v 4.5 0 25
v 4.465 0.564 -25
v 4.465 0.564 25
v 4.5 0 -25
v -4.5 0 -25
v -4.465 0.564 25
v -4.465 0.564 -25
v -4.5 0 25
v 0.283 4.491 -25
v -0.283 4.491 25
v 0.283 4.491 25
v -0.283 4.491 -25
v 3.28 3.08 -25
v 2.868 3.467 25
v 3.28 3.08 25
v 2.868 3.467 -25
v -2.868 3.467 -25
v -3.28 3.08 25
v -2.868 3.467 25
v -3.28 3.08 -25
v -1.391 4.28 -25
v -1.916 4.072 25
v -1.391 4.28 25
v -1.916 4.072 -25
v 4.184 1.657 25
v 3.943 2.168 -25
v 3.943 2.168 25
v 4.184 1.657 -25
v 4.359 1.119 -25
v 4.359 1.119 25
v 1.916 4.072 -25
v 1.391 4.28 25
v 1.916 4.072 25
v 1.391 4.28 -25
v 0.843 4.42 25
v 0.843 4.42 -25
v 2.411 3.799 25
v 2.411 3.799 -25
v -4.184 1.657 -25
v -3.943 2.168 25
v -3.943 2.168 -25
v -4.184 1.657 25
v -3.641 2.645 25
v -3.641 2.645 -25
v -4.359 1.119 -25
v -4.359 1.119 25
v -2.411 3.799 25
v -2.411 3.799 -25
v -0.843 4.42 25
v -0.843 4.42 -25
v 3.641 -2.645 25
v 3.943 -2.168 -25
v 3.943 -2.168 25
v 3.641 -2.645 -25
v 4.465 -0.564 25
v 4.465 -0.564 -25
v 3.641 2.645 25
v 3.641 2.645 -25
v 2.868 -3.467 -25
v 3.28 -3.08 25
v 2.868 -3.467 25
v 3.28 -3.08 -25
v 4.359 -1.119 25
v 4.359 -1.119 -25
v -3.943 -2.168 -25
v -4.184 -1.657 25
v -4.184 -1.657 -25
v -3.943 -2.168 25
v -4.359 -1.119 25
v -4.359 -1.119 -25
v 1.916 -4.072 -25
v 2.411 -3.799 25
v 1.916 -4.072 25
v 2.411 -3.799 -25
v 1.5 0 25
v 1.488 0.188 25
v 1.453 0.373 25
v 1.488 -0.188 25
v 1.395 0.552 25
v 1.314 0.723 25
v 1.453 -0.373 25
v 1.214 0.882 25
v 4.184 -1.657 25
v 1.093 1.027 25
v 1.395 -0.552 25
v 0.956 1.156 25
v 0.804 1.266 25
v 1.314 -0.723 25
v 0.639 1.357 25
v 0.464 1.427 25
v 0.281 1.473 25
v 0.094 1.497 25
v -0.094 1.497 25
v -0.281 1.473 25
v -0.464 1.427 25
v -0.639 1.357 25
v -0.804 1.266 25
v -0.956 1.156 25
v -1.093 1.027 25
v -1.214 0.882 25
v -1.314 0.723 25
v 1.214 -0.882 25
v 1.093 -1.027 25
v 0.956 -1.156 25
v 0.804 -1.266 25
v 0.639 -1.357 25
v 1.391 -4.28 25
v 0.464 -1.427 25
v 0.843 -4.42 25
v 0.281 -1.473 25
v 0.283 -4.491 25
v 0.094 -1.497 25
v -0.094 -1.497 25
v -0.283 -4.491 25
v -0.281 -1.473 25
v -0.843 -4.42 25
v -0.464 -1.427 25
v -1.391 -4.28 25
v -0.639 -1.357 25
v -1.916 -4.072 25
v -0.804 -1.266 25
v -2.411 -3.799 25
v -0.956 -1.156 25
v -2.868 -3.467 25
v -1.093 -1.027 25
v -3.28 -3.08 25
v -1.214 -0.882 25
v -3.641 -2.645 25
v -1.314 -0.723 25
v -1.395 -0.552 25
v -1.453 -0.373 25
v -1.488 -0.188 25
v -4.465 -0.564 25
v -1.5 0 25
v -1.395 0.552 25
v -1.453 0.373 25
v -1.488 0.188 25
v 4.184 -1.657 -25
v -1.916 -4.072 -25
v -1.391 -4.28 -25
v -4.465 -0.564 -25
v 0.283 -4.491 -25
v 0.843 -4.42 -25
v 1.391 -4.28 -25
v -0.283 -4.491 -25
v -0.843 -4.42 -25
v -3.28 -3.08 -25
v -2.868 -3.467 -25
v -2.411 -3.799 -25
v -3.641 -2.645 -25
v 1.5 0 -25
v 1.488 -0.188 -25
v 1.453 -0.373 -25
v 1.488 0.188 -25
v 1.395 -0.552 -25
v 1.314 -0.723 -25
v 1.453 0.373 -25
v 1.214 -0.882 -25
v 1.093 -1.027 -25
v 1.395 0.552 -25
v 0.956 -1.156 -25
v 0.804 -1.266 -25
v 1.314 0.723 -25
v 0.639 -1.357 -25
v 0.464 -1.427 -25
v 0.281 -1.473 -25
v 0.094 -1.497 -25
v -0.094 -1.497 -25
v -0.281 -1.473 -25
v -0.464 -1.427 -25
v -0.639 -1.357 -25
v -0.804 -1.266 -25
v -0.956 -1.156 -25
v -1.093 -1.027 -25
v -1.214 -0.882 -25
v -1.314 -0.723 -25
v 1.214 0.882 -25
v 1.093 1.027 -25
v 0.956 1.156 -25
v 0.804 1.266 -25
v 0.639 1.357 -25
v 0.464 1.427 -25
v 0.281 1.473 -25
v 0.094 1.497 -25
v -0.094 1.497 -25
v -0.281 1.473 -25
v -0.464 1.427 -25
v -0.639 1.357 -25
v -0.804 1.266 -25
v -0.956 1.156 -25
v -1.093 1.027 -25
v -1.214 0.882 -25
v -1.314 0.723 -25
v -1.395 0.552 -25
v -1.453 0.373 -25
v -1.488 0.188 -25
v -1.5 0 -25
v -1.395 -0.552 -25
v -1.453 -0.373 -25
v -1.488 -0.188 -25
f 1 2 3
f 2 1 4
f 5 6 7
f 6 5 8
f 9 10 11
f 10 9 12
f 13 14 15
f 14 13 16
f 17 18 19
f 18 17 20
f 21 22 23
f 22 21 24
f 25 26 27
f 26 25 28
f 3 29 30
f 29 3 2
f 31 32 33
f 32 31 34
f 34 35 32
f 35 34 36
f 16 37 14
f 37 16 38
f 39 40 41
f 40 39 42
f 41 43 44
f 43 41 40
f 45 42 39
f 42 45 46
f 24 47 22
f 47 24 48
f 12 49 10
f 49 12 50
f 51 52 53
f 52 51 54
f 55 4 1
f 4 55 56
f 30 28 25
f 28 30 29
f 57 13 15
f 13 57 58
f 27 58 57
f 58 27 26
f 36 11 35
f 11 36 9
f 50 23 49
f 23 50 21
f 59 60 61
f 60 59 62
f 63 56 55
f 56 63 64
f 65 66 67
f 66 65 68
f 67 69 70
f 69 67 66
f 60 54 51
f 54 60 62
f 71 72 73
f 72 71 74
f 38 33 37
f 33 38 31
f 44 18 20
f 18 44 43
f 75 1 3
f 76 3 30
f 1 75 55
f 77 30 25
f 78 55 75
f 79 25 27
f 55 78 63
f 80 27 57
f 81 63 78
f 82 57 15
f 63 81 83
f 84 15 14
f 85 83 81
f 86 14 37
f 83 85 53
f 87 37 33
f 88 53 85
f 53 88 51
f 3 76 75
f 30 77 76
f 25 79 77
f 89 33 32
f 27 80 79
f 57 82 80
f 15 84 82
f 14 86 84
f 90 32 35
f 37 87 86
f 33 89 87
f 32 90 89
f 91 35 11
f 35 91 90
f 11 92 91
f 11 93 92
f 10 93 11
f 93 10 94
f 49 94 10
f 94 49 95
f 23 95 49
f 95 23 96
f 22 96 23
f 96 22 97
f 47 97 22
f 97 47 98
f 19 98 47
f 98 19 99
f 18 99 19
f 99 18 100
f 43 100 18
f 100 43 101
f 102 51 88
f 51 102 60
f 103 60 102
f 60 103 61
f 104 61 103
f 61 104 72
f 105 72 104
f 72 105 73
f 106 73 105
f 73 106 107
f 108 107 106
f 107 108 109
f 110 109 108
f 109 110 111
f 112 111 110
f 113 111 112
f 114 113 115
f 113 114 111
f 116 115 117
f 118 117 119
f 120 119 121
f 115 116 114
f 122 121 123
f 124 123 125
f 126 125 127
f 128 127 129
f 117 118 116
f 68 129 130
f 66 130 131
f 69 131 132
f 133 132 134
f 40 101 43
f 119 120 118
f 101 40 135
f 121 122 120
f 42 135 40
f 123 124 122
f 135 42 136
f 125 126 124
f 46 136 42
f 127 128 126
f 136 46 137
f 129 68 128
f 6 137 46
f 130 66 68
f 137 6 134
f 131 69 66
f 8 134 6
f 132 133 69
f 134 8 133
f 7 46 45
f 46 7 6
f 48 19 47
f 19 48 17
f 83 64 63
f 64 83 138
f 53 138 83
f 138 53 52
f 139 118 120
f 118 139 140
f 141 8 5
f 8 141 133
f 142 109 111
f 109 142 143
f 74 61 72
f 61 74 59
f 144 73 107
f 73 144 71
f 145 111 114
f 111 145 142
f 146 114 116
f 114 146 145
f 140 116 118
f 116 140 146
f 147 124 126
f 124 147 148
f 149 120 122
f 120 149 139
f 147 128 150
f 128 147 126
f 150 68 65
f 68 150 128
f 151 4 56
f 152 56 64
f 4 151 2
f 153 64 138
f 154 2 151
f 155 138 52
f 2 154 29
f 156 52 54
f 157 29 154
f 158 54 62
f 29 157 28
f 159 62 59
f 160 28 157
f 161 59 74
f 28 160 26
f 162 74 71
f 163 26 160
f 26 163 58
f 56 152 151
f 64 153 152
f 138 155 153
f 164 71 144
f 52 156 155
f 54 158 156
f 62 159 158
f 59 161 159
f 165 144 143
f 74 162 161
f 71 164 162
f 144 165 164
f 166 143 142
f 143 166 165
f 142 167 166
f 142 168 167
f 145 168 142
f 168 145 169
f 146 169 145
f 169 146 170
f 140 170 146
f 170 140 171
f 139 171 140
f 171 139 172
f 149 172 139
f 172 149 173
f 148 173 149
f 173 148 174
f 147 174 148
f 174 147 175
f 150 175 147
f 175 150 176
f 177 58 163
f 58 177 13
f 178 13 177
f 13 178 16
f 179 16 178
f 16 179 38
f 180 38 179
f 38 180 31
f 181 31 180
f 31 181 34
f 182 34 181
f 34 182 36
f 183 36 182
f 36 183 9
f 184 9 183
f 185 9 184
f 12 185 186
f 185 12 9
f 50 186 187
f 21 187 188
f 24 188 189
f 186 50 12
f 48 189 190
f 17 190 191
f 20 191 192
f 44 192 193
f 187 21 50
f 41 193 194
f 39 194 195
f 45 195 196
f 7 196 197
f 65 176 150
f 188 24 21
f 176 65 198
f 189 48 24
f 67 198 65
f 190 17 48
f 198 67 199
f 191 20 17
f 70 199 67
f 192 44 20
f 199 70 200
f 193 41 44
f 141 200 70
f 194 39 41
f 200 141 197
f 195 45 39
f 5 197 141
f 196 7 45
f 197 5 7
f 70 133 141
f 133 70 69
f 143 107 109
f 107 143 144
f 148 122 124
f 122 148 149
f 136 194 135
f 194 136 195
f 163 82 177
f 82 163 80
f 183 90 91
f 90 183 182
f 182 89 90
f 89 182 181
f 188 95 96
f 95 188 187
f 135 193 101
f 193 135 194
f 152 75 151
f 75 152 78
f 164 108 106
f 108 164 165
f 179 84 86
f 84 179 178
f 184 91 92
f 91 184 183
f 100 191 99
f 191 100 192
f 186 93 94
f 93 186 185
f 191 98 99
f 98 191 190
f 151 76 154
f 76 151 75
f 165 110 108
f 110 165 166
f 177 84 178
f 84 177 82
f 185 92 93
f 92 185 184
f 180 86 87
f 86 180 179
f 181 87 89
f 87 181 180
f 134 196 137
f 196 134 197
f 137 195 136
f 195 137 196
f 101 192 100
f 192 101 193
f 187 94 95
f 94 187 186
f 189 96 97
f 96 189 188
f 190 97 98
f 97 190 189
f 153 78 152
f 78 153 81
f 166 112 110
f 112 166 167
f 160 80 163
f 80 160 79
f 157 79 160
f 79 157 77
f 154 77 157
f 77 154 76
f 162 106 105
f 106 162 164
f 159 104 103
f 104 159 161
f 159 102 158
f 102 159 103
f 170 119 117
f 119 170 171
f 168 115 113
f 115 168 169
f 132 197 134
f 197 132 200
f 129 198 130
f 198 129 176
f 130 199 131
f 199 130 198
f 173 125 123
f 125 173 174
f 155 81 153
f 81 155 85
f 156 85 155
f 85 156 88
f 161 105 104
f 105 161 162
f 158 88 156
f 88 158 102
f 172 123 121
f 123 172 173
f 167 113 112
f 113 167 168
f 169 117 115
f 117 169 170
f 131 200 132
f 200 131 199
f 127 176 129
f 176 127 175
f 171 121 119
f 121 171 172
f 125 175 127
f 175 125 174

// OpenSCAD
$fn = 50;


difference() {
	union() {
		translate(v = [0, 0, -25.0000000000]) {
			cylinder(h = 50, r = 4.5000000000);
		}
	}
	union() {
		translate(v = [0, 0, -100.0000000000]) {
			cylinder(h = 200, r = 1.5000000000);
		}
	}
}
